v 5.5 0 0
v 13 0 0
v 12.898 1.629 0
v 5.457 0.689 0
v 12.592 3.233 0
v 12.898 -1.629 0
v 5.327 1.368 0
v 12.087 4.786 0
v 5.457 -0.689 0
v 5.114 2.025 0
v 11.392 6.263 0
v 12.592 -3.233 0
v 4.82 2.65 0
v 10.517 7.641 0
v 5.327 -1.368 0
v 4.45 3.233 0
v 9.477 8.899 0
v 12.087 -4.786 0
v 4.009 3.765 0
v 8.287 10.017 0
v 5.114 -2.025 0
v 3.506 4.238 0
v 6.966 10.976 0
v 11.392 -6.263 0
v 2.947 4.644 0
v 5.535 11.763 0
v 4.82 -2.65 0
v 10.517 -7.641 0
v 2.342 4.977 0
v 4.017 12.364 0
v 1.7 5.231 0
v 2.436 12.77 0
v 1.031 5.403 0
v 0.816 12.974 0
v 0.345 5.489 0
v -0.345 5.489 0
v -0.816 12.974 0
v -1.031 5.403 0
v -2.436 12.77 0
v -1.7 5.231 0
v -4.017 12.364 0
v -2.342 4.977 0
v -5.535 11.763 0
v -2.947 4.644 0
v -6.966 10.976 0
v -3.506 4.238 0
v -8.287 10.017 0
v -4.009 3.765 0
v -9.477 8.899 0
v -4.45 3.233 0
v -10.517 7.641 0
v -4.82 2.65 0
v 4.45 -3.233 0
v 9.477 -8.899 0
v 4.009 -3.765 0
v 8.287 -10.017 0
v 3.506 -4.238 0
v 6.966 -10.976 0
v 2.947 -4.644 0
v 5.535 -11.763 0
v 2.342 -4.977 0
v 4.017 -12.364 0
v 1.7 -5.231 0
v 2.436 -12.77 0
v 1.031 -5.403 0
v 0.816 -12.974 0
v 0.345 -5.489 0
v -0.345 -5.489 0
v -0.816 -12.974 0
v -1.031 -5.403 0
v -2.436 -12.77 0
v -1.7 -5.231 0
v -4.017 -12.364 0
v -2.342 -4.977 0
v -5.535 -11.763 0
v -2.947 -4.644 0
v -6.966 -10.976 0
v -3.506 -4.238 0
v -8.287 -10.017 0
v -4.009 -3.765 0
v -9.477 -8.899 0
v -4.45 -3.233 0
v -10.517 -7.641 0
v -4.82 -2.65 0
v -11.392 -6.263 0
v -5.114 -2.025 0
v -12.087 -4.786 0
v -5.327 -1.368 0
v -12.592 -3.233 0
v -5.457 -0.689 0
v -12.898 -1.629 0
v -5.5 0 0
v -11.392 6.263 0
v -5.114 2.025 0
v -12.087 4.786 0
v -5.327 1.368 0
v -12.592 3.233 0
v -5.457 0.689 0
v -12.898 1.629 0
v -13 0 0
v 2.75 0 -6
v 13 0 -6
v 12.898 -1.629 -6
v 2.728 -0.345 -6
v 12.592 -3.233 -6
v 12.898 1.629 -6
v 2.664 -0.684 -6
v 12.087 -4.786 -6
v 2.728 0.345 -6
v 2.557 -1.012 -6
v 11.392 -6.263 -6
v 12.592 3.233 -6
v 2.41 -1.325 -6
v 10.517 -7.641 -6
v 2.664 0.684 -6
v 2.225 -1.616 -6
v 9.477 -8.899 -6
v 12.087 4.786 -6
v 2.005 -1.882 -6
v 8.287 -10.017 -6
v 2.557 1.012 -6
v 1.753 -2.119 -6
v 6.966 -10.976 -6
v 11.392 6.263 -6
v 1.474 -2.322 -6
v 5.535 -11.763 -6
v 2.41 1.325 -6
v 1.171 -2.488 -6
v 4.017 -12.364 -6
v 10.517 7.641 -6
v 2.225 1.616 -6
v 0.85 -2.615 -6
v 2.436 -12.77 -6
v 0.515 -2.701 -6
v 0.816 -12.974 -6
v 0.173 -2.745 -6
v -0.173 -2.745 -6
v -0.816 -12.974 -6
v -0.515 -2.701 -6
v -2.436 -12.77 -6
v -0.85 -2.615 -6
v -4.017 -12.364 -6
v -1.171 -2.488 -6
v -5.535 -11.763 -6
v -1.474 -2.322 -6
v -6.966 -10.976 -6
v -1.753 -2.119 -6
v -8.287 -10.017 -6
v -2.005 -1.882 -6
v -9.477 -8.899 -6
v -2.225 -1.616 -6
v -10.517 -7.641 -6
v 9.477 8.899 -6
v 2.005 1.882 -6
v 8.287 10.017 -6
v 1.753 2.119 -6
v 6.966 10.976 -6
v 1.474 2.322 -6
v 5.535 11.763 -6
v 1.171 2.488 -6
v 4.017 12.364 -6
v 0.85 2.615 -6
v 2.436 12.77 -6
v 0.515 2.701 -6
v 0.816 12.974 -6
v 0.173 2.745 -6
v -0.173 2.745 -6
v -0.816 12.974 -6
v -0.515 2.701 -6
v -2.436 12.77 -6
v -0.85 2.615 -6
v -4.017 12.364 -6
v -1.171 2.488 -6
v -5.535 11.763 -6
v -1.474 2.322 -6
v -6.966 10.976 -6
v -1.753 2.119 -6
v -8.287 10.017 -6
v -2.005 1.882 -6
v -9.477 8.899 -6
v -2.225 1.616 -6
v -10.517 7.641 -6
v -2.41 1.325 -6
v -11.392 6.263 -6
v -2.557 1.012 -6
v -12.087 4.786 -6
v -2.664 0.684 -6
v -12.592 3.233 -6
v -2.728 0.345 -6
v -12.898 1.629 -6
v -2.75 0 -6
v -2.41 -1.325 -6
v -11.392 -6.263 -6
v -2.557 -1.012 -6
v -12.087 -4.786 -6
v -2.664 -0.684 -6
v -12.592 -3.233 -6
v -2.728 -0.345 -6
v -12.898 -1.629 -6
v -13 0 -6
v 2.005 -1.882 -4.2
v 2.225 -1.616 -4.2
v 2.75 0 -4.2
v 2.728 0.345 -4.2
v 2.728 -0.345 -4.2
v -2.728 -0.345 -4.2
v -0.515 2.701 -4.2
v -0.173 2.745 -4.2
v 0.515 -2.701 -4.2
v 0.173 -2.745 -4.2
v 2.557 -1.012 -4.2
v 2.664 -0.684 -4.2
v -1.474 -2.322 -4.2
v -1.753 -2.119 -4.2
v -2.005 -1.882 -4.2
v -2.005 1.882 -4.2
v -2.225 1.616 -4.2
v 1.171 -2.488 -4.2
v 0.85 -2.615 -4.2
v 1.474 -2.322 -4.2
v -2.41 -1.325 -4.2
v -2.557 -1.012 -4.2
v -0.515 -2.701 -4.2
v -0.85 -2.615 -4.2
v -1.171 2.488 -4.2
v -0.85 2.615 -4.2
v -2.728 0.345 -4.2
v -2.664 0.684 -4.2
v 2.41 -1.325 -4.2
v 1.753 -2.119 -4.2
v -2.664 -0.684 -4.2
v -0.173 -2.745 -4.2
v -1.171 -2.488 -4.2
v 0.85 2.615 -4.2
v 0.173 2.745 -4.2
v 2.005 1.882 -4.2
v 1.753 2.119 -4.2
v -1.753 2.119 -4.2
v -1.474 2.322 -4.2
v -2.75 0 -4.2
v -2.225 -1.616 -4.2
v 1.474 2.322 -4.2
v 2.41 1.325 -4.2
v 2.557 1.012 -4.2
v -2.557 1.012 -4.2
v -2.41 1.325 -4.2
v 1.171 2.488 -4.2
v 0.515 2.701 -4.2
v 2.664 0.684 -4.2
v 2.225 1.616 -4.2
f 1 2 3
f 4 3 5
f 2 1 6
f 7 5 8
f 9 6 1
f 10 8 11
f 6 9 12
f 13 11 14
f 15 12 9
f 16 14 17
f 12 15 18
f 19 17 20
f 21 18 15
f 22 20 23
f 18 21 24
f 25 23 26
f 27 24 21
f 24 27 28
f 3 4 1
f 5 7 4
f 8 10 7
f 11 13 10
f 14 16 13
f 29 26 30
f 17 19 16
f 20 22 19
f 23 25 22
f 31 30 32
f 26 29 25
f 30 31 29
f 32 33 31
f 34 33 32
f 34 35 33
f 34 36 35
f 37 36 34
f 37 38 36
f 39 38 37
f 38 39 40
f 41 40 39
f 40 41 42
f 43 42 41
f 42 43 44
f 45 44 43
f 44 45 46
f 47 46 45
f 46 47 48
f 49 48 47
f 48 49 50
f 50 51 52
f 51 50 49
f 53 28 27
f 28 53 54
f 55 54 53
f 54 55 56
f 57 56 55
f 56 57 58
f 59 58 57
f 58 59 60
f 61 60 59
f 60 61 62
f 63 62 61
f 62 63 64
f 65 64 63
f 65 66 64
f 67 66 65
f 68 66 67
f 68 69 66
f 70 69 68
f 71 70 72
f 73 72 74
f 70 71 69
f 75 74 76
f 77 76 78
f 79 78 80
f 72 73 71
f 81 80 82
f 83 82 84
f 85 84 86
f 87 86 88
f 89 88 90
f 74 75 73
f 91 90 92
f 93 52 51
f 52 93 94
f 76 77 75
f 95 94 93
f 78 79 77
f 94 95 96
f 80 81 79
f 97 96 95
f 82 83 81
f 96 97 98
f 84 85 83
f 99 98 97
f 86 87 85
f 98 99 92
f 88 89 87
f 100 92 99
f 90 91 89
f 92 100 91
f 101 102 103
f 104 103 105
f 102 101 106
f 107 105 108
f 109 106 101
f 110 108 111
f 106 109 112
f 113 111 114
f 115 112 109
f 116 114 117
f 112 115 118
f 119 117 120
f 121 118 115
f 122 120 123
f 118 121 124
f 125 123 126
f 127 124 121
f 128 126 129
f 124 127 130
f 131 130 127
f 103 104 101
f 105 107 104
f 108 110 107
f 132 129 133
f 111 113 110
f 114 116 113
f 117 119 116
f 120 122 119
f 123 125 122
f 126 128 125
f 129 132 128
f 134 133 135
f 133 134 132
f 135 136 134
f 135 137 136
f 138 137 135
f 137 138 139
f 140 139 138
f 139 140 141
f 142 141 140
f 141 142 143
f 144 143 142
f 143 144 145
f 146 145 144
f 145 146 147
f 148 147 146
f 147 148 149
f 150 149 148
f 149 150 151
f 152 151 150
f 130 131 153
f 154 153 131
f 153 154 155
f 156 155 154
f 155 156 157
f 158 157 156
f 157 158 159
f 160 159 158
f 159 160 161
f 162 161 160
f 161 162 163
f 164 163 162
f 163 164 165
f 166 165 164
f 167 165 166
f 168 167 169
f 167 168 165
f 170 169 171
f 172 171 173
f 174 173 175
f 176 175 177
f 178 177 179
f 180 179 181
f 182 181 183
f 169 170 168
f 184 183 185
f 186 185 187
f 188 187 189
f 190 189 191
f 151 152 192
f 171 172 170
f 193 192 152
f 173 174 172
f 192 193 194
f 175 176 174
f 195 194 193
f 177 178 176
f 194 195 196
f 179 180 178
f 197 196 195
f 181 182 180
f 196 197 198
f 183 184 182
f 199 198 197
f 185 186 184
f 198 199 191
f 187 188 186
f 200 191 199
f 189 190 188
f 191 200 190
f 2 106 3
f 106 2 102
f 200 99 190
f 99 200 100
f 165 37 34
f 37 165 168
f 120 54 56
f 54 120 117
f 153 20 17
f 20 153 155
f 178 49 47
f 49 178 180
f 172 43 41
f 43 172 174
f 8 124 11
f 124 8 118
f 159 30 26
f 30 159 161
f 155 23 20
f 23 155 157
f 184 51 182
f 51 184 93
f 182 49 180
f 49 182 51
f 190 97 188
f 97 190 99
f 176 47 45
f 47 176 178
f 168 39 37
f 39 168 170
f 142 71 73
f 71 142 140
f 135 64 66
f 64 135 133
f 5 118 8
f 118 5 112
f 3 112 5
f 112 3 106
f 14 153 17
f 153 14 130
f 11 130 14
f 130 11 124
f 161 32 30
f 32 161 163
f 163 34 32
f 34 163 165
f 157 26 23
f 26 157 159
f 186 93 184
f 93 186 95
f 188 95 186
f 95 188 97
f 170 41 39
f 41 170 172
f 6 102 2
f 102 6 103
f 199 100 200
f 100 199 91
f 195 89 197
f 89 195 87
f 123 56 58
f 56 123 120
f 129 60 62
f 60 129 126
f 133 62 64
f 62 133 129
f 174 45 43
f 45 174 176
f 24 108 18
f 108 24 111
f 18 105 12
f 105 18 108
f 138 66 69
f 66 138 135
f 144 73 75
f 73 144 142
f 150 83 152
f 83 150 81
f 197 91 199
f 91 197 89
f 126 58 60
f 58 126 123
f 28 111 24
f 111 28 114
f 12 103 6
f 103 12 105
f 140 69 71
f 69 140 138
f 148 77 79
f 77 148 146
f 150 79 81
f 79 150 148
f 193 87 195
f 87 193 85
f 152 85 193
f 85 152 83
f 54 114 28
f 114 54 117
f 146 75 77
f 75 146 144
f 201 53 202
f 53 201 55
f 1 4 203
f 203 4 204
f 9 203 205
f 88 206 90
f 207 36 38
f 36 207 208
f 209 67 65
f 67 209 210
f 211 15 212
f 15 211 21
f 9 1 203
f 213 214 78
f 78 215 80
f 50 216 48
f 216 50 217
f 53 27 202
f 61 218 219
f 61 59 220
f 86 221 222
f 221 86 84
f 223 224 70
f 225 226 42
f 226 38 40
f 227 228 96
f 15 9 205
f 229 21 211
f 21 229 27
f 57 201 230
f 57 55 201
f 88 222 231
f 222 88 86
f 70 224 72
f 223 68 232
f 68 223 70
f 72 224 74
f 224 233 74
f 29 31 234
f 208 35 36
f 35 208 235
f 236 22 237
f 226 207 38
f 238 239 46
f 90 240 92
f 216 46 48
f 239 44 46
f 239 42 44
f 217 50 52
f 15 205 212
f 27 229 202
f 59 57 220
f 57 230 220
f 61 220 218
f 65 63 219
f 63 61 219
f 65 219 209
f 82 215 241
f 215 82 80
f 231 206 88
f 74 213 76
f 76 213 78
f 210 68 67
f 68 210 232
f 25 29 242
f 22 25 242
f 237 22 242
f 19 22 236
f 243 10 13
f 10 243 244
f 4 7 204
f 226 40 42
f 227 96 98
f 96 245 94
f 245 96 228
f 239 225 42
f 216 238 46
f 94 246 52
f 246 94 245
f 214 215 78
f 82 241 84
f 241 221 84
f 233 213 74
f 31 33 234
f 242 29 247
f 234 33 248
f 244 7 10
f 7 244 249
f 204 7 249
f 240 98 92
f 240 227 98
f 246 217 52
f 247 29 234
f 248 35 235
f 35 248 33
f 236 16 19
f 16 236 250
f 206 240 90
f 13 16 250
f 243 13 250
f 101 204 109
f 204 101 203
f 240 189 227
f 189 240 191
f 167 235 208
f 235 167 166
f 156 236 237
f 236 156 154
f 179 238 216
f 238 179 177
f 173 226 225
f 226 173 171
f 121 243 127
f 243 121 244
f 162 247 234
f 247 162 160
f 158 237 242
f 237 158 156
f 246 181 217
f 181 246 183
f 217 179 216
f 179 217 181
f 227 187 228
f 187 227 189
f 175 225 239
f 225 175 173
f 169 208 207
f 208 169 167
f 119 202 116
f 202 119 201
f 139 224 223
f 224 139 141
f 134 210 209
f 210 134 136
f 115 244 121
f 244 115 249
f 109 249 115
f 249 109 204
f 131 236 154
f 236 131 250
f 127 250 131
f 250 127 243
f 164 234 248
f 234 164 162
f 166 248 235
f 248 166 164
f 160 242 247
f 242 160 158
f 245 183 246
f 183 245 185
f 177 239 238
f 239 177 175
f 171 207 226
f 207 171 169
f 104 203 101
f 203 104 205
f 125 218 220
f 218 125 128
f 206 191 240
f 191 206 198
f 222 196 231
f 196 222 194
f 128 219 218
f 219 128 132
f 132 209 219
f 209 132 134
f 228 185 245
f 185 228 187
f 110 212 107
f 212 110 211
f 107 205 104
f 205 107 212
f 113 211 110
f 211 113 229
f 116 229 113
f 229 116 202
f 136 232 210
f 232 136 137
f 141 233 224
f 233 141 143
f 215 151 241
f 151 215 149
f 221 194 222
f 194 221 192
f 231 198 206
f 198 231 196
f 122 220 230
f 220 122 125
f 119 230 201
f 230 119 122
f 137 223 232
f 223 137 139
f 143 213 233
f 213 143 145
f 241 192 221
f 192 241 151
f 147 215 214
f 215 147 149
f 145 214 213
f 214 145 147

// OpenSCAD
$fn = 50;


difference() {
	union() {
		translate(v = [0, 0, -6.0000000000]) {
			cylinder(h = 6, r = 10.0000000000);
		}
		translate(v = [0, 0, -6.0000000000]) {
			cylinder(h = 6, r = 13.0000000000);
		}
	}
	union() {
		translate(v = [0, 0, 0]) {
			rotate(a = [0, 0, 0]) {
				difference() {
					union() {
						#translate(v = [0, 0, -6.0000000000]) {
							cylinder(h = 6, r = 2.2500000000);
						}
						#translate(v = [0, 0, -4.2000000000]) {
							cylinder(h = 4.2000000000, r = 10.0000000000, r1 = 2.7500000000, r2 = 5.5000000000);
						}
						#translate(v = [0, 0, -6.0000000000]) {
							cylinder(h = 6, r = 2.7500000000);
						}
						#translate(v = [0, 0, -6.0000000000]) {
							cylinder(h = 6, r = 2.2500000000);
						}
					}
					union();
				}
			}
		}
	}
}
